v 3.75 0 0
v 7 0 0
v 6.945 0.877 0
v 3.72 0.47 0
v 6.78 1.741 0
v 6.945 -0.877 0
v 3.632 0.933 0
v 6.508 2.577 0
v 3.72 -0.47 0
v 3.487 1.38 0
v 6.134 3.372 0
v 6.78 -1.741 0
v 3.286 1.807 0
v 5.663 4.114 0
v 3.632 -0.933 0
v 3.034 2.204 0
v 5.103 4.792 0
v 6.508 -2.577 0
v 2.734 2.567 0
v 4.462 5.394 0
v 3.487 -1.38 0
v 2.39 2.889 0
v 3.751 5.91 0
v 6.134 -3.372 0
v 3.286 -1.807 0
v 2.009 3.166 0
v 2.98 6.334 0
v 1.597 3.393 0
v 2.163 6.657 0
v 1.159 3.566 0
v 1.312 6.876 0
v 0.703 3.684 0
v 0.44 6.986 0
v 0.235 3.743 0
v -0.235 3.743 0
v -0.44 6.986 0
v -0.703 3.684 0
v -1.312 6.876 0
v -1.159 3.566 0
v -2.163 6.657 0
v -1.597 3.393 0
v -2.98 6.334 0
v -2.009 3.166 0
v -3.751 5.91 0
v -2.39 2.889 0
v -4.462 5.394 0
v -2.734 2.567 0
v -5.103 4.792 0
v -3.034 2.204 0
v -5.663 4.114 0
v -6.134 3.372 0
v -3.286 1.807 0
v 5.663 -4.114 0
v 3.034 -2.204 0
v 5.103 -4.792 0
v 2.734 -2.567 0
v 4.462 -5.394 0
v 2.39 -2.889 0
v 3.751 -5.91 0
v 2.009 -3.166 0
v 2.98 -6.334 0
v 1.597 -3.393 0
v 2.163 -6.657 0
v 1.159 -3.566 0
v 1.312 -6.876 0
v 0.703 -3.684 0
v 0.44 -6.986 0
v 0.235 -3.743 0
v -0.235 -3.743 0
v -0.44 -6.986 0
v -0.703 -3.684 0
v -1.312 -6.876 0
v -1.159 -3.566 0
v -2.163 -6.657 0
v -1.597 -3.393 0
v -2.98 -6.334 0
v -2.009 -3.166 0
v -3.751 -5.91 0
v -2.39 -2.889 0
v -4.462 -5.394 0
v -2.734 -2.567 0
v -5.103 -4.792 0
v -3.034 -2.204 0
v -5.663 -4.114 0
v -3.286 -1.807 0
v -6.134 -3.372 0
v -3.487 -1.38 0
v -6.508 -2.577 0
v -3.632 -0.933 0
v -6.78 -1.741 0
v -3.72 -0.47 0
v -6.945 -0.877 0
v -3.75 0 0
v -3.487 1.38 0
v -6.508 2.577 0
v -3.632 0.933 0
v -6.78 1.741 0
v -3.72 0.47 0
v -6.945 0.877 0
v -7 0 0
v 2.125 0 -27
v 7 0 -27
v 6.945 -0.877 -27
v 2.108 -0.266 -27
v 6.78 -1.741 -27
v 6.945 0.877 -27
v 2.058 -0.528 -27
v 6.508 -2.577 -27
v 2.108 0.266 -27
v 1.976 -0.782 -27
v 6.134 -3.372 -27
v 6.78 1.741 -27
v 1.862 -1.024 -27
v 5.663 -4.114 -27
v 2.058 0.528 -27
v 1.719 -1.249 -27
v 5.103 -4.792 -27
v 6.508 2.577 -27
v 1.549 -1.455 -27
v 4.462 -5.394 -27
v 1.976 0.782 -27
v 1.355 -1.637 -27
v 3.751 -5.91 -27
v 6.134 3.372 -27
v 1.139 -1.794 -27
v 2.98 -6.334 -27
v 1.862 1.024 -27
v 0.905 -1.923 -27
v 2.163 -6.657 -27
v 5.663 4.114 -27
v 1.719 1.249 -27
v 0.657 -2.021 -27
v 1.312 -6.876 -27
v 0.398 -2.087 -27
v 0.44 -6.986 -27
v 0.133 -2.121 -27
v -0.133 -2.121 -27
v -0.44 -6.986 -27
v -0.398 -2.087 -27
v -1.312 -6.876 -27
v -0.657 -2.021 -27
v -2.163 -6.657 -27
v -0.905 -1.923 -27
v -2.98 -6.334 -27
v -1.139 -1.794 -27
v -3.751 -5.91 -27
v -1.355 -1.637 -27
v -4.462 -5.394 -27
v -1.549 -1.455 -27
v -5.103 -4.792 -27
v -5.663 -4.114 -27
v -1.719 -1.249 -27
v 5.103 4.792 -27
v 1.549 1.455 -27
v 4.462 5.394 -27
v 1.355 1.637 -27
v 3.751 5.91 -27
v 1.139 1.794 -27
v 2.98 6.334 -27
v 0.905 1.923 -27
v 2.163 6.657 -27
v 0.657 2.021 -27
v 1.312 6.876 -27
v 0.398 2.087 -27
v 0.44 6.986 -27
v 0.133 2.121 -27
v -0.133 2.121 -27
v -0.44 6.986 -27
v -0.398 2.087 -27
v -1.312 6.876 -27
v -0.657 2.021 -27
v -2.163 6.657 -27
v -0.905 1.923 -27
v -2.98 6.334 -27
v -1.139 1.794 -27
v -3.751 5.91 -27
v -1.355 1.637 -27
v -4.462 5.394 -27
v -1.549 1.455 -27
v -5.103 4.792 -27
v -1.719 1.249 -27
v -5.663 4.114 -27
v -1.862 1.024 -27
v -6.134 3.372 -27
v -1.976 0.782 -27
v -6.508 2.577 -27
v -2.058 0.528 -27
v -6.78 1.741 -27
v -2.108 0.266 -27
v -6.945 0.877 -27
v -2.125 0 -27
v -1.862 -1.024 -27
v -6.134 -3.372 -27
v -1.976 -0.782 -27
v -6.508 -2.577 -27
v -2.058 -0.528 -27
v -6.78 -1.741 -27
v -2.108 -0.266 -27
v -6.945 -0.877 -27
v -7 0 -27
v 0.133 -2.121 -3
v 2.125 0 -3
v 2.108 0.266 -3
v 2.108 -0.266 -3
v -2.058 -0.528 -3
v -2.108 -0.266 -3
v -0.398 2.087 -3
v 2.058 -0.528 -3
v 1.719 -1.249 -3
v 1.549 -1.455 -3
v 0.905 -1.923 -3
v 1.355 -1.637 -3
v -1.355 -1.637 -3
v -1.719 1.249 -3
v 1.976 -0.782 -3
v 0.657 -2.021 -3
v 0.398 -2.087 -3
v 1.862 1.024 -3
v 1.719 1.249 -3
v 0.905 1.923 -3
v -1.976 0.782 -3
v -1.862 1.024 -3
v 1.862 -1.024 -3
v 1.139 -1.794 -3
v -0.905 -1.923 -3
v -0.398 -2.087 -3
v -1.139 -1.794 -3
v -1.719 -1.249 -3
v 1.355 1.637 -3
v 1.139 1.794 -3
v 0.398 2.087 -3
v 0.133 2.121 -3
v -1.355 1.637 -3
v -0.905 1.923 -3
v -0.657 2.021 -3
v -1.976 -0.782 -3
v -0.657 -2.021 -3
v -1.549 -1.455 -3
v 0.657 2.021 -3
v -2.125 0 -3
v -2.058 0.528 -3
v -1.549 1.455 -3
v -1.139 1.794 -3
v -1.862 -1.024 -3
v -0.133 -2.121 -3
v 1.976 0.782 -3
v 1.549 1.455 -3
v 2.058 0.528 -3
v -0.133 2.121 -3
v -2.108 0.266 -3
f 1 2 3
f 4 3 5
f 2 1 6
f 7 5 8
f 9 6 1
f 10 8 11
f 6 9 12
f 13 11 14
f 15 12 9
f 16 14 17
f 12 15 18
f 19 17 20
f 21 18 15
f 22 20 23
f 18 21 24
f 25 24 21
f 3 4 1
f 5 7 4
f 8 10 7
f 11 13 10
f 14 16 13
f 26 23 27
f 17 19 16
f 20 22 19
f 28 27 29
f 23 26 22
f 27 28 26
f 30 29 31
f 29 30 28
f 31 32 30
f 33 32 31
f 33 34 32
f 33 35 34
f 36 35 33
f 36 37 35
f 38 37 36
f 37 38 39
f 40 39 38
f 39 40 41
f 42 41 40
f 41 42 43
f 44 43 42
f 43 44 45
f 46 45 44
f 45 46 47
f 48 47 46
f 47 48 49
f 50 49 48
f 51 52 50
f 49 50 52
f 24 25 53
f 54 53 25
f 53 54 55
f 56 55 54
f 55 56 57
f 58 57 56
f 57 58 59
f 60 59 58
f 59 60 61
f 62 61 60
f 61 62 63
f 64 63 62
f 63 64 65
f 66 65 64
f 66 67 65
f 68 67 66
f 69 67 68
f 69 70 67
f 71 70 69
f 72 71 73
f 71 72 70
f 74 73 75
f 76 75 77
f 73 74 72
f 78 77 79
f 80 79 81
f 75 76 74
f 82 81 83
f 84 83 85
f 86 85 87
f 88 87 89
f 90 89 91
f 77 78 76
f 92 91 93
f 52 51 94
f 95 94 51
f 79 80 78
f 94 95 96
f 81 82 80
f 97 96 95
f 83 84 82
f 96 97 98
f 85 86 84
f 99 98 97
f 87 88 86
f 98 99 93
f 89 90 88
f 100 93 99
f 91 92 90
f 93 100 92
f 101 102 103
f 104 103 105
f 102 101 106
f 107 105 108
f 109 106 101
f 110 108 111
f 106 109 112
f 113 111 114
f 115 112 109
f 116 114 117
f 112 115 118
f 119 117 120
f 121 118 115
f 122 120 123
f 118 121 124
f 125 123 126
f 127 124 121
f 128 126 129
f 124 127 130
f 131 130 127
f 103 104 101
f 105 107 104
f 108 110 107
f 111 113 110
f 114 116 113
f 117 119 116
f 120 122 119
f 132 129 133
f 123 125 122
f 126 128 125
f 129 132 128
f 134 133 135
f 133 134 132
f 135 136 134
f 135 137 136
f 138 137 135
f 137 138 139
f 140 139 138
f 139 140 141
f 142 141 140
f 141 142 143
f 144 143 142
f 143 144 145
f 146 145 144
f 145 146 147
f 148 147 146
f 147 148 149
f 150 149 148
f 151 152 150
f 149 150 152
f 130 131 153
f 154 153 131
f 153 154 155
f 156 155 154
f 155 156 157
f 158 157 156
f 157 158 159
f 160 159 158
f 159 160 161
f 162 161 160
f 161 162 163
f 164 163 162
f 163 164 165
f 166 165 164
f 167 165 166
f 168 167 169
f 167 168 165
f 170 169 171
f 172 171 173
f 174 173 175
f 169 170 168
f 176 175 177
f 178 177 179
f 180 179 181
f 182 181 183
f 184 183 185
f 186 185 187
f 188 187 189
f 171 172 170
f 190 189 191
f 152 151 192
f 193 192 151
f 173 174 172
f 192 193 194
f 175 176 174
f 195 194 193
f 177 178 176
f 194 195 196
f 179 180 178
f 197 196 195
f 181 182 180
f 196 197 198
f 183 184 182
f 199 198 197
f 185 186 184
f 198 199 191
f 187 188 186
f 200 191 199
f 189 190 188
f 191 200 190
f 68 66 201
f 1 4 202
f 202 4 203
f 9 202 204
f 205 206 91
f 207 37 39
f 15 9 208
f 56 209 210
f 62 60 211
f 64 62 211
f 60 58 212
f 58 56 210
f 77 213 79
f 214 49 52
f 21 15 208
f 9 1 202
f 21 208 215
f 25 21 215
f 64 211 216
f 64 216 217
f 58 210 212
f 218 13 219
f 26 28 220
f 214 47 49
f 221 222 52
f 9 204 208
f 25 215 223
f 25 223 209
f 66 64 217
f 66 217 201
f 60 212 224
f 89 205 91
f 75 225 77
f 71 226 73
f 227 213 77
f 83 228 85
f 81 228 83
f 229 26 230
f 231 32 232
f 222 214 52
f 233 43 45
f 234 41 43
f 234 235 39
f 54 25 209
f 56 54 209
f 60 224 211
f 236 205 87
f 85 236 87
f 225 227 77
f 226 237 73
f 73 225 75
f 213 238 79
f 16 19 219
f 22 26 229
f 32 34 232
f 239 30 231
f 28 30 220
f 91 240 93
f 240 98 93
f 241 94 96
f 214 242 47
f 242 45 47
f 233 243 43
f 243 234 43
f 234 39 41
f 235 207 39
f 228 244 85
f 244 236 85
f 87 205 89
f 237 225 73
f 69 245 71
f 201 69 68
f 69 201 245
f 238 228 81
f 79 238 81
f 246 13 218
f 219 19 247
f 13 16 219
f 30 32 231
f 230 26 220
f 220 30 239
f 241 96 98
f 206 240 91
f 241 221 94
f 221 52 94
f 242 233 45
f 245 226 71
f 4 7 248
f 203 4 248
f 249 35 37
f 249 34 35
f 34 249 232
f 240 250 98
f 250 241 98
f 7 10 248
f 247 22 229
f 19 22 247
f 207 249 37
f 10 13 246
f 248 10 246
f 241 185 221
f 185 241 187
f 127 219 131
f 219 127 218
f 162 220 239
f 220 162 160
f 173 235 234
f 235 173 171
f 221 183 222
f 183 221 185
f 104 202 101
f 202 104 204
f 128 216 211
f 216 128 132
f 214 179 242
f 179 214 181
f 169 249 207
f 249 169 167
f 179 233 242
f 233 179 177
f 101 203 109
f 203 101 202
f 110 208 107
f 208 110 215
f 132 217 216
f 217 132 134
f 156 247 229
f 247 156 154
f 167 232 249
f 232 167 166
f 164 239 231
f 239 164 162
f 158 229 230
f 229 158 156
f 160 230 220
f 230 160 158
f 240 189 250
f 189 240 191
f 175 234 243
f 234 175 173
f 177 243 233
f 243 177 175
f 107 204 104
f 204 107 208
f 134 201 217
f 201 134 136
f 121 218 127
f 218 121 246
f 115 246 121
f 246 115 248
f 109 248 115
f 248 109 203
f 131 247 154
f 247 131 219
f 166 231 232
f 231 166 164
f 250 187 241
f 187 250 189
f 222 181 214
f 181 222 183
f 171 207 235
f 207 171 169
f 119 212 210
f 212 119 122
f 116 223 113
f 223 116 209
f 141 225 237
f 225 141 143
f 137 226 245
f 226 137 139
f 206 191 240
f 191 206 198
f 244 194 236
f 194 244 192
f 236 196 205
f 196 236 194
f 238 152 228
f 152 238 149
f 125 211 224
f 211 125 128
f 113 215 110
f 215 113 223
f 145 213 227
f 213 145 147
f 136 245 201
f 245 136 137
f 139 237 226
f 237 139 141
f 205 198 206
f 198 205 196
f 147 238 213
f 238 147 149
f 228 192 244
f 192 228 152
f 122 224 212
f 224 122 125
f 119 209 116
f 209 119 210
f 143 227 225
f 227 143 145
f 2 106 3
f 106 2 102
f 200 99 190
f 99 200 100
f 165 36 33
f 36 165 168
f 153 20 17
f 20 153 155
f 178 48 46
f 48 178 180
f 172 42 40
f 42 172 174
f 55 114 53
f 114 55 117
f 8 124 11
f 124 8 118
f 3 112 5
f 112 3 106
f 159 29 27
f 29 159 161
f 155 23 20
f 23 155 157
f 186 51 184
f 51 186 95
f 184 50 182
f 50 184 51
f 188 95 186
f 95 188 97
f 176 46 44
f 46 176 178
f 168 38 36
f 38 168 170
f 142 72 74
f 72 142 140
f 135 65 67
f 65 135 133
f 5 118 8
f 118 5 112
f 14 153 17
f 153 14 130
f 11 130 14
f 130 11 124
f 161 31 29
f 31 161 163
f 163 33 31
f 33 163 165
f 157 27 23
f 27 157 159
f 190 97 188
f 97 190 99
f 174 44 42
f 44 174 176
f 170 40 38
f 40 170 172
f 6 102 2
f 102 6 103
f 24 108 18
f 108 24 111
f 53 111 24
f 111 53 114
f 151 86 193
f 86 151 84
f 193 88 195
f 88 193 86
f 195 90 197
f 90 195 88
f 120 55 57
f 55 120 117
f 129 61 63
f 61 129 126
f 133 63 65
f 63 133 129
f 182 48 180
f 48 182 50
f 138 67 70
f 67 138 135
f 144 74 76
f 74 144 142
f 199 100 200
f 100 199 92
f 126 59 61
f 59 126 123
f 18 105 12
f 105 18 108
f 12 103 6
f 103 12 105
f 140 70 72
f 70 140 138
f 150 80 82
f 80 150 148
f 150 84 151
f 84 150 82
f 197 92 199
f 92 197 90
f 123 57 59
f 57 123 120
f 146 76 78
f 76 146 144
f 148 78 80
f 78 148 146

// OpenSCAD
$fn = 50;


difference() {
	union() {
		translate(v = [0, 0, -27.0000000000]) {
			cylinder(h = 27, r = 7.0000000000);
		}
		cylinder(h = 0, r = 13.0000000000);
	}
	union() {
		translate(v = [0, 0, 0]) {
			rotate(a = [0, 0, 0]) {
				difference() {
					union() {
						#translate(v = [0, 0, -27.0000000000]) {
							cylinder(h = 27, r = 2.0000000000);
						}
						#translate(v = [0, 0, -3]) {
							cylinder(h = 3, r1 = 2.1250000000, r2 = 3.7500000000);
						}
						#translate(v = [0, 0, -27.0000000000]) {
							cylinder(h = 27, r = 2.1250000000);
						}
						#translate(v = [0, 0, -27.0000000000]) {
							cylinder(h = 27, r = 2.0000000000);
						}
					}
					union();
				}
			}
		}
	}
}
